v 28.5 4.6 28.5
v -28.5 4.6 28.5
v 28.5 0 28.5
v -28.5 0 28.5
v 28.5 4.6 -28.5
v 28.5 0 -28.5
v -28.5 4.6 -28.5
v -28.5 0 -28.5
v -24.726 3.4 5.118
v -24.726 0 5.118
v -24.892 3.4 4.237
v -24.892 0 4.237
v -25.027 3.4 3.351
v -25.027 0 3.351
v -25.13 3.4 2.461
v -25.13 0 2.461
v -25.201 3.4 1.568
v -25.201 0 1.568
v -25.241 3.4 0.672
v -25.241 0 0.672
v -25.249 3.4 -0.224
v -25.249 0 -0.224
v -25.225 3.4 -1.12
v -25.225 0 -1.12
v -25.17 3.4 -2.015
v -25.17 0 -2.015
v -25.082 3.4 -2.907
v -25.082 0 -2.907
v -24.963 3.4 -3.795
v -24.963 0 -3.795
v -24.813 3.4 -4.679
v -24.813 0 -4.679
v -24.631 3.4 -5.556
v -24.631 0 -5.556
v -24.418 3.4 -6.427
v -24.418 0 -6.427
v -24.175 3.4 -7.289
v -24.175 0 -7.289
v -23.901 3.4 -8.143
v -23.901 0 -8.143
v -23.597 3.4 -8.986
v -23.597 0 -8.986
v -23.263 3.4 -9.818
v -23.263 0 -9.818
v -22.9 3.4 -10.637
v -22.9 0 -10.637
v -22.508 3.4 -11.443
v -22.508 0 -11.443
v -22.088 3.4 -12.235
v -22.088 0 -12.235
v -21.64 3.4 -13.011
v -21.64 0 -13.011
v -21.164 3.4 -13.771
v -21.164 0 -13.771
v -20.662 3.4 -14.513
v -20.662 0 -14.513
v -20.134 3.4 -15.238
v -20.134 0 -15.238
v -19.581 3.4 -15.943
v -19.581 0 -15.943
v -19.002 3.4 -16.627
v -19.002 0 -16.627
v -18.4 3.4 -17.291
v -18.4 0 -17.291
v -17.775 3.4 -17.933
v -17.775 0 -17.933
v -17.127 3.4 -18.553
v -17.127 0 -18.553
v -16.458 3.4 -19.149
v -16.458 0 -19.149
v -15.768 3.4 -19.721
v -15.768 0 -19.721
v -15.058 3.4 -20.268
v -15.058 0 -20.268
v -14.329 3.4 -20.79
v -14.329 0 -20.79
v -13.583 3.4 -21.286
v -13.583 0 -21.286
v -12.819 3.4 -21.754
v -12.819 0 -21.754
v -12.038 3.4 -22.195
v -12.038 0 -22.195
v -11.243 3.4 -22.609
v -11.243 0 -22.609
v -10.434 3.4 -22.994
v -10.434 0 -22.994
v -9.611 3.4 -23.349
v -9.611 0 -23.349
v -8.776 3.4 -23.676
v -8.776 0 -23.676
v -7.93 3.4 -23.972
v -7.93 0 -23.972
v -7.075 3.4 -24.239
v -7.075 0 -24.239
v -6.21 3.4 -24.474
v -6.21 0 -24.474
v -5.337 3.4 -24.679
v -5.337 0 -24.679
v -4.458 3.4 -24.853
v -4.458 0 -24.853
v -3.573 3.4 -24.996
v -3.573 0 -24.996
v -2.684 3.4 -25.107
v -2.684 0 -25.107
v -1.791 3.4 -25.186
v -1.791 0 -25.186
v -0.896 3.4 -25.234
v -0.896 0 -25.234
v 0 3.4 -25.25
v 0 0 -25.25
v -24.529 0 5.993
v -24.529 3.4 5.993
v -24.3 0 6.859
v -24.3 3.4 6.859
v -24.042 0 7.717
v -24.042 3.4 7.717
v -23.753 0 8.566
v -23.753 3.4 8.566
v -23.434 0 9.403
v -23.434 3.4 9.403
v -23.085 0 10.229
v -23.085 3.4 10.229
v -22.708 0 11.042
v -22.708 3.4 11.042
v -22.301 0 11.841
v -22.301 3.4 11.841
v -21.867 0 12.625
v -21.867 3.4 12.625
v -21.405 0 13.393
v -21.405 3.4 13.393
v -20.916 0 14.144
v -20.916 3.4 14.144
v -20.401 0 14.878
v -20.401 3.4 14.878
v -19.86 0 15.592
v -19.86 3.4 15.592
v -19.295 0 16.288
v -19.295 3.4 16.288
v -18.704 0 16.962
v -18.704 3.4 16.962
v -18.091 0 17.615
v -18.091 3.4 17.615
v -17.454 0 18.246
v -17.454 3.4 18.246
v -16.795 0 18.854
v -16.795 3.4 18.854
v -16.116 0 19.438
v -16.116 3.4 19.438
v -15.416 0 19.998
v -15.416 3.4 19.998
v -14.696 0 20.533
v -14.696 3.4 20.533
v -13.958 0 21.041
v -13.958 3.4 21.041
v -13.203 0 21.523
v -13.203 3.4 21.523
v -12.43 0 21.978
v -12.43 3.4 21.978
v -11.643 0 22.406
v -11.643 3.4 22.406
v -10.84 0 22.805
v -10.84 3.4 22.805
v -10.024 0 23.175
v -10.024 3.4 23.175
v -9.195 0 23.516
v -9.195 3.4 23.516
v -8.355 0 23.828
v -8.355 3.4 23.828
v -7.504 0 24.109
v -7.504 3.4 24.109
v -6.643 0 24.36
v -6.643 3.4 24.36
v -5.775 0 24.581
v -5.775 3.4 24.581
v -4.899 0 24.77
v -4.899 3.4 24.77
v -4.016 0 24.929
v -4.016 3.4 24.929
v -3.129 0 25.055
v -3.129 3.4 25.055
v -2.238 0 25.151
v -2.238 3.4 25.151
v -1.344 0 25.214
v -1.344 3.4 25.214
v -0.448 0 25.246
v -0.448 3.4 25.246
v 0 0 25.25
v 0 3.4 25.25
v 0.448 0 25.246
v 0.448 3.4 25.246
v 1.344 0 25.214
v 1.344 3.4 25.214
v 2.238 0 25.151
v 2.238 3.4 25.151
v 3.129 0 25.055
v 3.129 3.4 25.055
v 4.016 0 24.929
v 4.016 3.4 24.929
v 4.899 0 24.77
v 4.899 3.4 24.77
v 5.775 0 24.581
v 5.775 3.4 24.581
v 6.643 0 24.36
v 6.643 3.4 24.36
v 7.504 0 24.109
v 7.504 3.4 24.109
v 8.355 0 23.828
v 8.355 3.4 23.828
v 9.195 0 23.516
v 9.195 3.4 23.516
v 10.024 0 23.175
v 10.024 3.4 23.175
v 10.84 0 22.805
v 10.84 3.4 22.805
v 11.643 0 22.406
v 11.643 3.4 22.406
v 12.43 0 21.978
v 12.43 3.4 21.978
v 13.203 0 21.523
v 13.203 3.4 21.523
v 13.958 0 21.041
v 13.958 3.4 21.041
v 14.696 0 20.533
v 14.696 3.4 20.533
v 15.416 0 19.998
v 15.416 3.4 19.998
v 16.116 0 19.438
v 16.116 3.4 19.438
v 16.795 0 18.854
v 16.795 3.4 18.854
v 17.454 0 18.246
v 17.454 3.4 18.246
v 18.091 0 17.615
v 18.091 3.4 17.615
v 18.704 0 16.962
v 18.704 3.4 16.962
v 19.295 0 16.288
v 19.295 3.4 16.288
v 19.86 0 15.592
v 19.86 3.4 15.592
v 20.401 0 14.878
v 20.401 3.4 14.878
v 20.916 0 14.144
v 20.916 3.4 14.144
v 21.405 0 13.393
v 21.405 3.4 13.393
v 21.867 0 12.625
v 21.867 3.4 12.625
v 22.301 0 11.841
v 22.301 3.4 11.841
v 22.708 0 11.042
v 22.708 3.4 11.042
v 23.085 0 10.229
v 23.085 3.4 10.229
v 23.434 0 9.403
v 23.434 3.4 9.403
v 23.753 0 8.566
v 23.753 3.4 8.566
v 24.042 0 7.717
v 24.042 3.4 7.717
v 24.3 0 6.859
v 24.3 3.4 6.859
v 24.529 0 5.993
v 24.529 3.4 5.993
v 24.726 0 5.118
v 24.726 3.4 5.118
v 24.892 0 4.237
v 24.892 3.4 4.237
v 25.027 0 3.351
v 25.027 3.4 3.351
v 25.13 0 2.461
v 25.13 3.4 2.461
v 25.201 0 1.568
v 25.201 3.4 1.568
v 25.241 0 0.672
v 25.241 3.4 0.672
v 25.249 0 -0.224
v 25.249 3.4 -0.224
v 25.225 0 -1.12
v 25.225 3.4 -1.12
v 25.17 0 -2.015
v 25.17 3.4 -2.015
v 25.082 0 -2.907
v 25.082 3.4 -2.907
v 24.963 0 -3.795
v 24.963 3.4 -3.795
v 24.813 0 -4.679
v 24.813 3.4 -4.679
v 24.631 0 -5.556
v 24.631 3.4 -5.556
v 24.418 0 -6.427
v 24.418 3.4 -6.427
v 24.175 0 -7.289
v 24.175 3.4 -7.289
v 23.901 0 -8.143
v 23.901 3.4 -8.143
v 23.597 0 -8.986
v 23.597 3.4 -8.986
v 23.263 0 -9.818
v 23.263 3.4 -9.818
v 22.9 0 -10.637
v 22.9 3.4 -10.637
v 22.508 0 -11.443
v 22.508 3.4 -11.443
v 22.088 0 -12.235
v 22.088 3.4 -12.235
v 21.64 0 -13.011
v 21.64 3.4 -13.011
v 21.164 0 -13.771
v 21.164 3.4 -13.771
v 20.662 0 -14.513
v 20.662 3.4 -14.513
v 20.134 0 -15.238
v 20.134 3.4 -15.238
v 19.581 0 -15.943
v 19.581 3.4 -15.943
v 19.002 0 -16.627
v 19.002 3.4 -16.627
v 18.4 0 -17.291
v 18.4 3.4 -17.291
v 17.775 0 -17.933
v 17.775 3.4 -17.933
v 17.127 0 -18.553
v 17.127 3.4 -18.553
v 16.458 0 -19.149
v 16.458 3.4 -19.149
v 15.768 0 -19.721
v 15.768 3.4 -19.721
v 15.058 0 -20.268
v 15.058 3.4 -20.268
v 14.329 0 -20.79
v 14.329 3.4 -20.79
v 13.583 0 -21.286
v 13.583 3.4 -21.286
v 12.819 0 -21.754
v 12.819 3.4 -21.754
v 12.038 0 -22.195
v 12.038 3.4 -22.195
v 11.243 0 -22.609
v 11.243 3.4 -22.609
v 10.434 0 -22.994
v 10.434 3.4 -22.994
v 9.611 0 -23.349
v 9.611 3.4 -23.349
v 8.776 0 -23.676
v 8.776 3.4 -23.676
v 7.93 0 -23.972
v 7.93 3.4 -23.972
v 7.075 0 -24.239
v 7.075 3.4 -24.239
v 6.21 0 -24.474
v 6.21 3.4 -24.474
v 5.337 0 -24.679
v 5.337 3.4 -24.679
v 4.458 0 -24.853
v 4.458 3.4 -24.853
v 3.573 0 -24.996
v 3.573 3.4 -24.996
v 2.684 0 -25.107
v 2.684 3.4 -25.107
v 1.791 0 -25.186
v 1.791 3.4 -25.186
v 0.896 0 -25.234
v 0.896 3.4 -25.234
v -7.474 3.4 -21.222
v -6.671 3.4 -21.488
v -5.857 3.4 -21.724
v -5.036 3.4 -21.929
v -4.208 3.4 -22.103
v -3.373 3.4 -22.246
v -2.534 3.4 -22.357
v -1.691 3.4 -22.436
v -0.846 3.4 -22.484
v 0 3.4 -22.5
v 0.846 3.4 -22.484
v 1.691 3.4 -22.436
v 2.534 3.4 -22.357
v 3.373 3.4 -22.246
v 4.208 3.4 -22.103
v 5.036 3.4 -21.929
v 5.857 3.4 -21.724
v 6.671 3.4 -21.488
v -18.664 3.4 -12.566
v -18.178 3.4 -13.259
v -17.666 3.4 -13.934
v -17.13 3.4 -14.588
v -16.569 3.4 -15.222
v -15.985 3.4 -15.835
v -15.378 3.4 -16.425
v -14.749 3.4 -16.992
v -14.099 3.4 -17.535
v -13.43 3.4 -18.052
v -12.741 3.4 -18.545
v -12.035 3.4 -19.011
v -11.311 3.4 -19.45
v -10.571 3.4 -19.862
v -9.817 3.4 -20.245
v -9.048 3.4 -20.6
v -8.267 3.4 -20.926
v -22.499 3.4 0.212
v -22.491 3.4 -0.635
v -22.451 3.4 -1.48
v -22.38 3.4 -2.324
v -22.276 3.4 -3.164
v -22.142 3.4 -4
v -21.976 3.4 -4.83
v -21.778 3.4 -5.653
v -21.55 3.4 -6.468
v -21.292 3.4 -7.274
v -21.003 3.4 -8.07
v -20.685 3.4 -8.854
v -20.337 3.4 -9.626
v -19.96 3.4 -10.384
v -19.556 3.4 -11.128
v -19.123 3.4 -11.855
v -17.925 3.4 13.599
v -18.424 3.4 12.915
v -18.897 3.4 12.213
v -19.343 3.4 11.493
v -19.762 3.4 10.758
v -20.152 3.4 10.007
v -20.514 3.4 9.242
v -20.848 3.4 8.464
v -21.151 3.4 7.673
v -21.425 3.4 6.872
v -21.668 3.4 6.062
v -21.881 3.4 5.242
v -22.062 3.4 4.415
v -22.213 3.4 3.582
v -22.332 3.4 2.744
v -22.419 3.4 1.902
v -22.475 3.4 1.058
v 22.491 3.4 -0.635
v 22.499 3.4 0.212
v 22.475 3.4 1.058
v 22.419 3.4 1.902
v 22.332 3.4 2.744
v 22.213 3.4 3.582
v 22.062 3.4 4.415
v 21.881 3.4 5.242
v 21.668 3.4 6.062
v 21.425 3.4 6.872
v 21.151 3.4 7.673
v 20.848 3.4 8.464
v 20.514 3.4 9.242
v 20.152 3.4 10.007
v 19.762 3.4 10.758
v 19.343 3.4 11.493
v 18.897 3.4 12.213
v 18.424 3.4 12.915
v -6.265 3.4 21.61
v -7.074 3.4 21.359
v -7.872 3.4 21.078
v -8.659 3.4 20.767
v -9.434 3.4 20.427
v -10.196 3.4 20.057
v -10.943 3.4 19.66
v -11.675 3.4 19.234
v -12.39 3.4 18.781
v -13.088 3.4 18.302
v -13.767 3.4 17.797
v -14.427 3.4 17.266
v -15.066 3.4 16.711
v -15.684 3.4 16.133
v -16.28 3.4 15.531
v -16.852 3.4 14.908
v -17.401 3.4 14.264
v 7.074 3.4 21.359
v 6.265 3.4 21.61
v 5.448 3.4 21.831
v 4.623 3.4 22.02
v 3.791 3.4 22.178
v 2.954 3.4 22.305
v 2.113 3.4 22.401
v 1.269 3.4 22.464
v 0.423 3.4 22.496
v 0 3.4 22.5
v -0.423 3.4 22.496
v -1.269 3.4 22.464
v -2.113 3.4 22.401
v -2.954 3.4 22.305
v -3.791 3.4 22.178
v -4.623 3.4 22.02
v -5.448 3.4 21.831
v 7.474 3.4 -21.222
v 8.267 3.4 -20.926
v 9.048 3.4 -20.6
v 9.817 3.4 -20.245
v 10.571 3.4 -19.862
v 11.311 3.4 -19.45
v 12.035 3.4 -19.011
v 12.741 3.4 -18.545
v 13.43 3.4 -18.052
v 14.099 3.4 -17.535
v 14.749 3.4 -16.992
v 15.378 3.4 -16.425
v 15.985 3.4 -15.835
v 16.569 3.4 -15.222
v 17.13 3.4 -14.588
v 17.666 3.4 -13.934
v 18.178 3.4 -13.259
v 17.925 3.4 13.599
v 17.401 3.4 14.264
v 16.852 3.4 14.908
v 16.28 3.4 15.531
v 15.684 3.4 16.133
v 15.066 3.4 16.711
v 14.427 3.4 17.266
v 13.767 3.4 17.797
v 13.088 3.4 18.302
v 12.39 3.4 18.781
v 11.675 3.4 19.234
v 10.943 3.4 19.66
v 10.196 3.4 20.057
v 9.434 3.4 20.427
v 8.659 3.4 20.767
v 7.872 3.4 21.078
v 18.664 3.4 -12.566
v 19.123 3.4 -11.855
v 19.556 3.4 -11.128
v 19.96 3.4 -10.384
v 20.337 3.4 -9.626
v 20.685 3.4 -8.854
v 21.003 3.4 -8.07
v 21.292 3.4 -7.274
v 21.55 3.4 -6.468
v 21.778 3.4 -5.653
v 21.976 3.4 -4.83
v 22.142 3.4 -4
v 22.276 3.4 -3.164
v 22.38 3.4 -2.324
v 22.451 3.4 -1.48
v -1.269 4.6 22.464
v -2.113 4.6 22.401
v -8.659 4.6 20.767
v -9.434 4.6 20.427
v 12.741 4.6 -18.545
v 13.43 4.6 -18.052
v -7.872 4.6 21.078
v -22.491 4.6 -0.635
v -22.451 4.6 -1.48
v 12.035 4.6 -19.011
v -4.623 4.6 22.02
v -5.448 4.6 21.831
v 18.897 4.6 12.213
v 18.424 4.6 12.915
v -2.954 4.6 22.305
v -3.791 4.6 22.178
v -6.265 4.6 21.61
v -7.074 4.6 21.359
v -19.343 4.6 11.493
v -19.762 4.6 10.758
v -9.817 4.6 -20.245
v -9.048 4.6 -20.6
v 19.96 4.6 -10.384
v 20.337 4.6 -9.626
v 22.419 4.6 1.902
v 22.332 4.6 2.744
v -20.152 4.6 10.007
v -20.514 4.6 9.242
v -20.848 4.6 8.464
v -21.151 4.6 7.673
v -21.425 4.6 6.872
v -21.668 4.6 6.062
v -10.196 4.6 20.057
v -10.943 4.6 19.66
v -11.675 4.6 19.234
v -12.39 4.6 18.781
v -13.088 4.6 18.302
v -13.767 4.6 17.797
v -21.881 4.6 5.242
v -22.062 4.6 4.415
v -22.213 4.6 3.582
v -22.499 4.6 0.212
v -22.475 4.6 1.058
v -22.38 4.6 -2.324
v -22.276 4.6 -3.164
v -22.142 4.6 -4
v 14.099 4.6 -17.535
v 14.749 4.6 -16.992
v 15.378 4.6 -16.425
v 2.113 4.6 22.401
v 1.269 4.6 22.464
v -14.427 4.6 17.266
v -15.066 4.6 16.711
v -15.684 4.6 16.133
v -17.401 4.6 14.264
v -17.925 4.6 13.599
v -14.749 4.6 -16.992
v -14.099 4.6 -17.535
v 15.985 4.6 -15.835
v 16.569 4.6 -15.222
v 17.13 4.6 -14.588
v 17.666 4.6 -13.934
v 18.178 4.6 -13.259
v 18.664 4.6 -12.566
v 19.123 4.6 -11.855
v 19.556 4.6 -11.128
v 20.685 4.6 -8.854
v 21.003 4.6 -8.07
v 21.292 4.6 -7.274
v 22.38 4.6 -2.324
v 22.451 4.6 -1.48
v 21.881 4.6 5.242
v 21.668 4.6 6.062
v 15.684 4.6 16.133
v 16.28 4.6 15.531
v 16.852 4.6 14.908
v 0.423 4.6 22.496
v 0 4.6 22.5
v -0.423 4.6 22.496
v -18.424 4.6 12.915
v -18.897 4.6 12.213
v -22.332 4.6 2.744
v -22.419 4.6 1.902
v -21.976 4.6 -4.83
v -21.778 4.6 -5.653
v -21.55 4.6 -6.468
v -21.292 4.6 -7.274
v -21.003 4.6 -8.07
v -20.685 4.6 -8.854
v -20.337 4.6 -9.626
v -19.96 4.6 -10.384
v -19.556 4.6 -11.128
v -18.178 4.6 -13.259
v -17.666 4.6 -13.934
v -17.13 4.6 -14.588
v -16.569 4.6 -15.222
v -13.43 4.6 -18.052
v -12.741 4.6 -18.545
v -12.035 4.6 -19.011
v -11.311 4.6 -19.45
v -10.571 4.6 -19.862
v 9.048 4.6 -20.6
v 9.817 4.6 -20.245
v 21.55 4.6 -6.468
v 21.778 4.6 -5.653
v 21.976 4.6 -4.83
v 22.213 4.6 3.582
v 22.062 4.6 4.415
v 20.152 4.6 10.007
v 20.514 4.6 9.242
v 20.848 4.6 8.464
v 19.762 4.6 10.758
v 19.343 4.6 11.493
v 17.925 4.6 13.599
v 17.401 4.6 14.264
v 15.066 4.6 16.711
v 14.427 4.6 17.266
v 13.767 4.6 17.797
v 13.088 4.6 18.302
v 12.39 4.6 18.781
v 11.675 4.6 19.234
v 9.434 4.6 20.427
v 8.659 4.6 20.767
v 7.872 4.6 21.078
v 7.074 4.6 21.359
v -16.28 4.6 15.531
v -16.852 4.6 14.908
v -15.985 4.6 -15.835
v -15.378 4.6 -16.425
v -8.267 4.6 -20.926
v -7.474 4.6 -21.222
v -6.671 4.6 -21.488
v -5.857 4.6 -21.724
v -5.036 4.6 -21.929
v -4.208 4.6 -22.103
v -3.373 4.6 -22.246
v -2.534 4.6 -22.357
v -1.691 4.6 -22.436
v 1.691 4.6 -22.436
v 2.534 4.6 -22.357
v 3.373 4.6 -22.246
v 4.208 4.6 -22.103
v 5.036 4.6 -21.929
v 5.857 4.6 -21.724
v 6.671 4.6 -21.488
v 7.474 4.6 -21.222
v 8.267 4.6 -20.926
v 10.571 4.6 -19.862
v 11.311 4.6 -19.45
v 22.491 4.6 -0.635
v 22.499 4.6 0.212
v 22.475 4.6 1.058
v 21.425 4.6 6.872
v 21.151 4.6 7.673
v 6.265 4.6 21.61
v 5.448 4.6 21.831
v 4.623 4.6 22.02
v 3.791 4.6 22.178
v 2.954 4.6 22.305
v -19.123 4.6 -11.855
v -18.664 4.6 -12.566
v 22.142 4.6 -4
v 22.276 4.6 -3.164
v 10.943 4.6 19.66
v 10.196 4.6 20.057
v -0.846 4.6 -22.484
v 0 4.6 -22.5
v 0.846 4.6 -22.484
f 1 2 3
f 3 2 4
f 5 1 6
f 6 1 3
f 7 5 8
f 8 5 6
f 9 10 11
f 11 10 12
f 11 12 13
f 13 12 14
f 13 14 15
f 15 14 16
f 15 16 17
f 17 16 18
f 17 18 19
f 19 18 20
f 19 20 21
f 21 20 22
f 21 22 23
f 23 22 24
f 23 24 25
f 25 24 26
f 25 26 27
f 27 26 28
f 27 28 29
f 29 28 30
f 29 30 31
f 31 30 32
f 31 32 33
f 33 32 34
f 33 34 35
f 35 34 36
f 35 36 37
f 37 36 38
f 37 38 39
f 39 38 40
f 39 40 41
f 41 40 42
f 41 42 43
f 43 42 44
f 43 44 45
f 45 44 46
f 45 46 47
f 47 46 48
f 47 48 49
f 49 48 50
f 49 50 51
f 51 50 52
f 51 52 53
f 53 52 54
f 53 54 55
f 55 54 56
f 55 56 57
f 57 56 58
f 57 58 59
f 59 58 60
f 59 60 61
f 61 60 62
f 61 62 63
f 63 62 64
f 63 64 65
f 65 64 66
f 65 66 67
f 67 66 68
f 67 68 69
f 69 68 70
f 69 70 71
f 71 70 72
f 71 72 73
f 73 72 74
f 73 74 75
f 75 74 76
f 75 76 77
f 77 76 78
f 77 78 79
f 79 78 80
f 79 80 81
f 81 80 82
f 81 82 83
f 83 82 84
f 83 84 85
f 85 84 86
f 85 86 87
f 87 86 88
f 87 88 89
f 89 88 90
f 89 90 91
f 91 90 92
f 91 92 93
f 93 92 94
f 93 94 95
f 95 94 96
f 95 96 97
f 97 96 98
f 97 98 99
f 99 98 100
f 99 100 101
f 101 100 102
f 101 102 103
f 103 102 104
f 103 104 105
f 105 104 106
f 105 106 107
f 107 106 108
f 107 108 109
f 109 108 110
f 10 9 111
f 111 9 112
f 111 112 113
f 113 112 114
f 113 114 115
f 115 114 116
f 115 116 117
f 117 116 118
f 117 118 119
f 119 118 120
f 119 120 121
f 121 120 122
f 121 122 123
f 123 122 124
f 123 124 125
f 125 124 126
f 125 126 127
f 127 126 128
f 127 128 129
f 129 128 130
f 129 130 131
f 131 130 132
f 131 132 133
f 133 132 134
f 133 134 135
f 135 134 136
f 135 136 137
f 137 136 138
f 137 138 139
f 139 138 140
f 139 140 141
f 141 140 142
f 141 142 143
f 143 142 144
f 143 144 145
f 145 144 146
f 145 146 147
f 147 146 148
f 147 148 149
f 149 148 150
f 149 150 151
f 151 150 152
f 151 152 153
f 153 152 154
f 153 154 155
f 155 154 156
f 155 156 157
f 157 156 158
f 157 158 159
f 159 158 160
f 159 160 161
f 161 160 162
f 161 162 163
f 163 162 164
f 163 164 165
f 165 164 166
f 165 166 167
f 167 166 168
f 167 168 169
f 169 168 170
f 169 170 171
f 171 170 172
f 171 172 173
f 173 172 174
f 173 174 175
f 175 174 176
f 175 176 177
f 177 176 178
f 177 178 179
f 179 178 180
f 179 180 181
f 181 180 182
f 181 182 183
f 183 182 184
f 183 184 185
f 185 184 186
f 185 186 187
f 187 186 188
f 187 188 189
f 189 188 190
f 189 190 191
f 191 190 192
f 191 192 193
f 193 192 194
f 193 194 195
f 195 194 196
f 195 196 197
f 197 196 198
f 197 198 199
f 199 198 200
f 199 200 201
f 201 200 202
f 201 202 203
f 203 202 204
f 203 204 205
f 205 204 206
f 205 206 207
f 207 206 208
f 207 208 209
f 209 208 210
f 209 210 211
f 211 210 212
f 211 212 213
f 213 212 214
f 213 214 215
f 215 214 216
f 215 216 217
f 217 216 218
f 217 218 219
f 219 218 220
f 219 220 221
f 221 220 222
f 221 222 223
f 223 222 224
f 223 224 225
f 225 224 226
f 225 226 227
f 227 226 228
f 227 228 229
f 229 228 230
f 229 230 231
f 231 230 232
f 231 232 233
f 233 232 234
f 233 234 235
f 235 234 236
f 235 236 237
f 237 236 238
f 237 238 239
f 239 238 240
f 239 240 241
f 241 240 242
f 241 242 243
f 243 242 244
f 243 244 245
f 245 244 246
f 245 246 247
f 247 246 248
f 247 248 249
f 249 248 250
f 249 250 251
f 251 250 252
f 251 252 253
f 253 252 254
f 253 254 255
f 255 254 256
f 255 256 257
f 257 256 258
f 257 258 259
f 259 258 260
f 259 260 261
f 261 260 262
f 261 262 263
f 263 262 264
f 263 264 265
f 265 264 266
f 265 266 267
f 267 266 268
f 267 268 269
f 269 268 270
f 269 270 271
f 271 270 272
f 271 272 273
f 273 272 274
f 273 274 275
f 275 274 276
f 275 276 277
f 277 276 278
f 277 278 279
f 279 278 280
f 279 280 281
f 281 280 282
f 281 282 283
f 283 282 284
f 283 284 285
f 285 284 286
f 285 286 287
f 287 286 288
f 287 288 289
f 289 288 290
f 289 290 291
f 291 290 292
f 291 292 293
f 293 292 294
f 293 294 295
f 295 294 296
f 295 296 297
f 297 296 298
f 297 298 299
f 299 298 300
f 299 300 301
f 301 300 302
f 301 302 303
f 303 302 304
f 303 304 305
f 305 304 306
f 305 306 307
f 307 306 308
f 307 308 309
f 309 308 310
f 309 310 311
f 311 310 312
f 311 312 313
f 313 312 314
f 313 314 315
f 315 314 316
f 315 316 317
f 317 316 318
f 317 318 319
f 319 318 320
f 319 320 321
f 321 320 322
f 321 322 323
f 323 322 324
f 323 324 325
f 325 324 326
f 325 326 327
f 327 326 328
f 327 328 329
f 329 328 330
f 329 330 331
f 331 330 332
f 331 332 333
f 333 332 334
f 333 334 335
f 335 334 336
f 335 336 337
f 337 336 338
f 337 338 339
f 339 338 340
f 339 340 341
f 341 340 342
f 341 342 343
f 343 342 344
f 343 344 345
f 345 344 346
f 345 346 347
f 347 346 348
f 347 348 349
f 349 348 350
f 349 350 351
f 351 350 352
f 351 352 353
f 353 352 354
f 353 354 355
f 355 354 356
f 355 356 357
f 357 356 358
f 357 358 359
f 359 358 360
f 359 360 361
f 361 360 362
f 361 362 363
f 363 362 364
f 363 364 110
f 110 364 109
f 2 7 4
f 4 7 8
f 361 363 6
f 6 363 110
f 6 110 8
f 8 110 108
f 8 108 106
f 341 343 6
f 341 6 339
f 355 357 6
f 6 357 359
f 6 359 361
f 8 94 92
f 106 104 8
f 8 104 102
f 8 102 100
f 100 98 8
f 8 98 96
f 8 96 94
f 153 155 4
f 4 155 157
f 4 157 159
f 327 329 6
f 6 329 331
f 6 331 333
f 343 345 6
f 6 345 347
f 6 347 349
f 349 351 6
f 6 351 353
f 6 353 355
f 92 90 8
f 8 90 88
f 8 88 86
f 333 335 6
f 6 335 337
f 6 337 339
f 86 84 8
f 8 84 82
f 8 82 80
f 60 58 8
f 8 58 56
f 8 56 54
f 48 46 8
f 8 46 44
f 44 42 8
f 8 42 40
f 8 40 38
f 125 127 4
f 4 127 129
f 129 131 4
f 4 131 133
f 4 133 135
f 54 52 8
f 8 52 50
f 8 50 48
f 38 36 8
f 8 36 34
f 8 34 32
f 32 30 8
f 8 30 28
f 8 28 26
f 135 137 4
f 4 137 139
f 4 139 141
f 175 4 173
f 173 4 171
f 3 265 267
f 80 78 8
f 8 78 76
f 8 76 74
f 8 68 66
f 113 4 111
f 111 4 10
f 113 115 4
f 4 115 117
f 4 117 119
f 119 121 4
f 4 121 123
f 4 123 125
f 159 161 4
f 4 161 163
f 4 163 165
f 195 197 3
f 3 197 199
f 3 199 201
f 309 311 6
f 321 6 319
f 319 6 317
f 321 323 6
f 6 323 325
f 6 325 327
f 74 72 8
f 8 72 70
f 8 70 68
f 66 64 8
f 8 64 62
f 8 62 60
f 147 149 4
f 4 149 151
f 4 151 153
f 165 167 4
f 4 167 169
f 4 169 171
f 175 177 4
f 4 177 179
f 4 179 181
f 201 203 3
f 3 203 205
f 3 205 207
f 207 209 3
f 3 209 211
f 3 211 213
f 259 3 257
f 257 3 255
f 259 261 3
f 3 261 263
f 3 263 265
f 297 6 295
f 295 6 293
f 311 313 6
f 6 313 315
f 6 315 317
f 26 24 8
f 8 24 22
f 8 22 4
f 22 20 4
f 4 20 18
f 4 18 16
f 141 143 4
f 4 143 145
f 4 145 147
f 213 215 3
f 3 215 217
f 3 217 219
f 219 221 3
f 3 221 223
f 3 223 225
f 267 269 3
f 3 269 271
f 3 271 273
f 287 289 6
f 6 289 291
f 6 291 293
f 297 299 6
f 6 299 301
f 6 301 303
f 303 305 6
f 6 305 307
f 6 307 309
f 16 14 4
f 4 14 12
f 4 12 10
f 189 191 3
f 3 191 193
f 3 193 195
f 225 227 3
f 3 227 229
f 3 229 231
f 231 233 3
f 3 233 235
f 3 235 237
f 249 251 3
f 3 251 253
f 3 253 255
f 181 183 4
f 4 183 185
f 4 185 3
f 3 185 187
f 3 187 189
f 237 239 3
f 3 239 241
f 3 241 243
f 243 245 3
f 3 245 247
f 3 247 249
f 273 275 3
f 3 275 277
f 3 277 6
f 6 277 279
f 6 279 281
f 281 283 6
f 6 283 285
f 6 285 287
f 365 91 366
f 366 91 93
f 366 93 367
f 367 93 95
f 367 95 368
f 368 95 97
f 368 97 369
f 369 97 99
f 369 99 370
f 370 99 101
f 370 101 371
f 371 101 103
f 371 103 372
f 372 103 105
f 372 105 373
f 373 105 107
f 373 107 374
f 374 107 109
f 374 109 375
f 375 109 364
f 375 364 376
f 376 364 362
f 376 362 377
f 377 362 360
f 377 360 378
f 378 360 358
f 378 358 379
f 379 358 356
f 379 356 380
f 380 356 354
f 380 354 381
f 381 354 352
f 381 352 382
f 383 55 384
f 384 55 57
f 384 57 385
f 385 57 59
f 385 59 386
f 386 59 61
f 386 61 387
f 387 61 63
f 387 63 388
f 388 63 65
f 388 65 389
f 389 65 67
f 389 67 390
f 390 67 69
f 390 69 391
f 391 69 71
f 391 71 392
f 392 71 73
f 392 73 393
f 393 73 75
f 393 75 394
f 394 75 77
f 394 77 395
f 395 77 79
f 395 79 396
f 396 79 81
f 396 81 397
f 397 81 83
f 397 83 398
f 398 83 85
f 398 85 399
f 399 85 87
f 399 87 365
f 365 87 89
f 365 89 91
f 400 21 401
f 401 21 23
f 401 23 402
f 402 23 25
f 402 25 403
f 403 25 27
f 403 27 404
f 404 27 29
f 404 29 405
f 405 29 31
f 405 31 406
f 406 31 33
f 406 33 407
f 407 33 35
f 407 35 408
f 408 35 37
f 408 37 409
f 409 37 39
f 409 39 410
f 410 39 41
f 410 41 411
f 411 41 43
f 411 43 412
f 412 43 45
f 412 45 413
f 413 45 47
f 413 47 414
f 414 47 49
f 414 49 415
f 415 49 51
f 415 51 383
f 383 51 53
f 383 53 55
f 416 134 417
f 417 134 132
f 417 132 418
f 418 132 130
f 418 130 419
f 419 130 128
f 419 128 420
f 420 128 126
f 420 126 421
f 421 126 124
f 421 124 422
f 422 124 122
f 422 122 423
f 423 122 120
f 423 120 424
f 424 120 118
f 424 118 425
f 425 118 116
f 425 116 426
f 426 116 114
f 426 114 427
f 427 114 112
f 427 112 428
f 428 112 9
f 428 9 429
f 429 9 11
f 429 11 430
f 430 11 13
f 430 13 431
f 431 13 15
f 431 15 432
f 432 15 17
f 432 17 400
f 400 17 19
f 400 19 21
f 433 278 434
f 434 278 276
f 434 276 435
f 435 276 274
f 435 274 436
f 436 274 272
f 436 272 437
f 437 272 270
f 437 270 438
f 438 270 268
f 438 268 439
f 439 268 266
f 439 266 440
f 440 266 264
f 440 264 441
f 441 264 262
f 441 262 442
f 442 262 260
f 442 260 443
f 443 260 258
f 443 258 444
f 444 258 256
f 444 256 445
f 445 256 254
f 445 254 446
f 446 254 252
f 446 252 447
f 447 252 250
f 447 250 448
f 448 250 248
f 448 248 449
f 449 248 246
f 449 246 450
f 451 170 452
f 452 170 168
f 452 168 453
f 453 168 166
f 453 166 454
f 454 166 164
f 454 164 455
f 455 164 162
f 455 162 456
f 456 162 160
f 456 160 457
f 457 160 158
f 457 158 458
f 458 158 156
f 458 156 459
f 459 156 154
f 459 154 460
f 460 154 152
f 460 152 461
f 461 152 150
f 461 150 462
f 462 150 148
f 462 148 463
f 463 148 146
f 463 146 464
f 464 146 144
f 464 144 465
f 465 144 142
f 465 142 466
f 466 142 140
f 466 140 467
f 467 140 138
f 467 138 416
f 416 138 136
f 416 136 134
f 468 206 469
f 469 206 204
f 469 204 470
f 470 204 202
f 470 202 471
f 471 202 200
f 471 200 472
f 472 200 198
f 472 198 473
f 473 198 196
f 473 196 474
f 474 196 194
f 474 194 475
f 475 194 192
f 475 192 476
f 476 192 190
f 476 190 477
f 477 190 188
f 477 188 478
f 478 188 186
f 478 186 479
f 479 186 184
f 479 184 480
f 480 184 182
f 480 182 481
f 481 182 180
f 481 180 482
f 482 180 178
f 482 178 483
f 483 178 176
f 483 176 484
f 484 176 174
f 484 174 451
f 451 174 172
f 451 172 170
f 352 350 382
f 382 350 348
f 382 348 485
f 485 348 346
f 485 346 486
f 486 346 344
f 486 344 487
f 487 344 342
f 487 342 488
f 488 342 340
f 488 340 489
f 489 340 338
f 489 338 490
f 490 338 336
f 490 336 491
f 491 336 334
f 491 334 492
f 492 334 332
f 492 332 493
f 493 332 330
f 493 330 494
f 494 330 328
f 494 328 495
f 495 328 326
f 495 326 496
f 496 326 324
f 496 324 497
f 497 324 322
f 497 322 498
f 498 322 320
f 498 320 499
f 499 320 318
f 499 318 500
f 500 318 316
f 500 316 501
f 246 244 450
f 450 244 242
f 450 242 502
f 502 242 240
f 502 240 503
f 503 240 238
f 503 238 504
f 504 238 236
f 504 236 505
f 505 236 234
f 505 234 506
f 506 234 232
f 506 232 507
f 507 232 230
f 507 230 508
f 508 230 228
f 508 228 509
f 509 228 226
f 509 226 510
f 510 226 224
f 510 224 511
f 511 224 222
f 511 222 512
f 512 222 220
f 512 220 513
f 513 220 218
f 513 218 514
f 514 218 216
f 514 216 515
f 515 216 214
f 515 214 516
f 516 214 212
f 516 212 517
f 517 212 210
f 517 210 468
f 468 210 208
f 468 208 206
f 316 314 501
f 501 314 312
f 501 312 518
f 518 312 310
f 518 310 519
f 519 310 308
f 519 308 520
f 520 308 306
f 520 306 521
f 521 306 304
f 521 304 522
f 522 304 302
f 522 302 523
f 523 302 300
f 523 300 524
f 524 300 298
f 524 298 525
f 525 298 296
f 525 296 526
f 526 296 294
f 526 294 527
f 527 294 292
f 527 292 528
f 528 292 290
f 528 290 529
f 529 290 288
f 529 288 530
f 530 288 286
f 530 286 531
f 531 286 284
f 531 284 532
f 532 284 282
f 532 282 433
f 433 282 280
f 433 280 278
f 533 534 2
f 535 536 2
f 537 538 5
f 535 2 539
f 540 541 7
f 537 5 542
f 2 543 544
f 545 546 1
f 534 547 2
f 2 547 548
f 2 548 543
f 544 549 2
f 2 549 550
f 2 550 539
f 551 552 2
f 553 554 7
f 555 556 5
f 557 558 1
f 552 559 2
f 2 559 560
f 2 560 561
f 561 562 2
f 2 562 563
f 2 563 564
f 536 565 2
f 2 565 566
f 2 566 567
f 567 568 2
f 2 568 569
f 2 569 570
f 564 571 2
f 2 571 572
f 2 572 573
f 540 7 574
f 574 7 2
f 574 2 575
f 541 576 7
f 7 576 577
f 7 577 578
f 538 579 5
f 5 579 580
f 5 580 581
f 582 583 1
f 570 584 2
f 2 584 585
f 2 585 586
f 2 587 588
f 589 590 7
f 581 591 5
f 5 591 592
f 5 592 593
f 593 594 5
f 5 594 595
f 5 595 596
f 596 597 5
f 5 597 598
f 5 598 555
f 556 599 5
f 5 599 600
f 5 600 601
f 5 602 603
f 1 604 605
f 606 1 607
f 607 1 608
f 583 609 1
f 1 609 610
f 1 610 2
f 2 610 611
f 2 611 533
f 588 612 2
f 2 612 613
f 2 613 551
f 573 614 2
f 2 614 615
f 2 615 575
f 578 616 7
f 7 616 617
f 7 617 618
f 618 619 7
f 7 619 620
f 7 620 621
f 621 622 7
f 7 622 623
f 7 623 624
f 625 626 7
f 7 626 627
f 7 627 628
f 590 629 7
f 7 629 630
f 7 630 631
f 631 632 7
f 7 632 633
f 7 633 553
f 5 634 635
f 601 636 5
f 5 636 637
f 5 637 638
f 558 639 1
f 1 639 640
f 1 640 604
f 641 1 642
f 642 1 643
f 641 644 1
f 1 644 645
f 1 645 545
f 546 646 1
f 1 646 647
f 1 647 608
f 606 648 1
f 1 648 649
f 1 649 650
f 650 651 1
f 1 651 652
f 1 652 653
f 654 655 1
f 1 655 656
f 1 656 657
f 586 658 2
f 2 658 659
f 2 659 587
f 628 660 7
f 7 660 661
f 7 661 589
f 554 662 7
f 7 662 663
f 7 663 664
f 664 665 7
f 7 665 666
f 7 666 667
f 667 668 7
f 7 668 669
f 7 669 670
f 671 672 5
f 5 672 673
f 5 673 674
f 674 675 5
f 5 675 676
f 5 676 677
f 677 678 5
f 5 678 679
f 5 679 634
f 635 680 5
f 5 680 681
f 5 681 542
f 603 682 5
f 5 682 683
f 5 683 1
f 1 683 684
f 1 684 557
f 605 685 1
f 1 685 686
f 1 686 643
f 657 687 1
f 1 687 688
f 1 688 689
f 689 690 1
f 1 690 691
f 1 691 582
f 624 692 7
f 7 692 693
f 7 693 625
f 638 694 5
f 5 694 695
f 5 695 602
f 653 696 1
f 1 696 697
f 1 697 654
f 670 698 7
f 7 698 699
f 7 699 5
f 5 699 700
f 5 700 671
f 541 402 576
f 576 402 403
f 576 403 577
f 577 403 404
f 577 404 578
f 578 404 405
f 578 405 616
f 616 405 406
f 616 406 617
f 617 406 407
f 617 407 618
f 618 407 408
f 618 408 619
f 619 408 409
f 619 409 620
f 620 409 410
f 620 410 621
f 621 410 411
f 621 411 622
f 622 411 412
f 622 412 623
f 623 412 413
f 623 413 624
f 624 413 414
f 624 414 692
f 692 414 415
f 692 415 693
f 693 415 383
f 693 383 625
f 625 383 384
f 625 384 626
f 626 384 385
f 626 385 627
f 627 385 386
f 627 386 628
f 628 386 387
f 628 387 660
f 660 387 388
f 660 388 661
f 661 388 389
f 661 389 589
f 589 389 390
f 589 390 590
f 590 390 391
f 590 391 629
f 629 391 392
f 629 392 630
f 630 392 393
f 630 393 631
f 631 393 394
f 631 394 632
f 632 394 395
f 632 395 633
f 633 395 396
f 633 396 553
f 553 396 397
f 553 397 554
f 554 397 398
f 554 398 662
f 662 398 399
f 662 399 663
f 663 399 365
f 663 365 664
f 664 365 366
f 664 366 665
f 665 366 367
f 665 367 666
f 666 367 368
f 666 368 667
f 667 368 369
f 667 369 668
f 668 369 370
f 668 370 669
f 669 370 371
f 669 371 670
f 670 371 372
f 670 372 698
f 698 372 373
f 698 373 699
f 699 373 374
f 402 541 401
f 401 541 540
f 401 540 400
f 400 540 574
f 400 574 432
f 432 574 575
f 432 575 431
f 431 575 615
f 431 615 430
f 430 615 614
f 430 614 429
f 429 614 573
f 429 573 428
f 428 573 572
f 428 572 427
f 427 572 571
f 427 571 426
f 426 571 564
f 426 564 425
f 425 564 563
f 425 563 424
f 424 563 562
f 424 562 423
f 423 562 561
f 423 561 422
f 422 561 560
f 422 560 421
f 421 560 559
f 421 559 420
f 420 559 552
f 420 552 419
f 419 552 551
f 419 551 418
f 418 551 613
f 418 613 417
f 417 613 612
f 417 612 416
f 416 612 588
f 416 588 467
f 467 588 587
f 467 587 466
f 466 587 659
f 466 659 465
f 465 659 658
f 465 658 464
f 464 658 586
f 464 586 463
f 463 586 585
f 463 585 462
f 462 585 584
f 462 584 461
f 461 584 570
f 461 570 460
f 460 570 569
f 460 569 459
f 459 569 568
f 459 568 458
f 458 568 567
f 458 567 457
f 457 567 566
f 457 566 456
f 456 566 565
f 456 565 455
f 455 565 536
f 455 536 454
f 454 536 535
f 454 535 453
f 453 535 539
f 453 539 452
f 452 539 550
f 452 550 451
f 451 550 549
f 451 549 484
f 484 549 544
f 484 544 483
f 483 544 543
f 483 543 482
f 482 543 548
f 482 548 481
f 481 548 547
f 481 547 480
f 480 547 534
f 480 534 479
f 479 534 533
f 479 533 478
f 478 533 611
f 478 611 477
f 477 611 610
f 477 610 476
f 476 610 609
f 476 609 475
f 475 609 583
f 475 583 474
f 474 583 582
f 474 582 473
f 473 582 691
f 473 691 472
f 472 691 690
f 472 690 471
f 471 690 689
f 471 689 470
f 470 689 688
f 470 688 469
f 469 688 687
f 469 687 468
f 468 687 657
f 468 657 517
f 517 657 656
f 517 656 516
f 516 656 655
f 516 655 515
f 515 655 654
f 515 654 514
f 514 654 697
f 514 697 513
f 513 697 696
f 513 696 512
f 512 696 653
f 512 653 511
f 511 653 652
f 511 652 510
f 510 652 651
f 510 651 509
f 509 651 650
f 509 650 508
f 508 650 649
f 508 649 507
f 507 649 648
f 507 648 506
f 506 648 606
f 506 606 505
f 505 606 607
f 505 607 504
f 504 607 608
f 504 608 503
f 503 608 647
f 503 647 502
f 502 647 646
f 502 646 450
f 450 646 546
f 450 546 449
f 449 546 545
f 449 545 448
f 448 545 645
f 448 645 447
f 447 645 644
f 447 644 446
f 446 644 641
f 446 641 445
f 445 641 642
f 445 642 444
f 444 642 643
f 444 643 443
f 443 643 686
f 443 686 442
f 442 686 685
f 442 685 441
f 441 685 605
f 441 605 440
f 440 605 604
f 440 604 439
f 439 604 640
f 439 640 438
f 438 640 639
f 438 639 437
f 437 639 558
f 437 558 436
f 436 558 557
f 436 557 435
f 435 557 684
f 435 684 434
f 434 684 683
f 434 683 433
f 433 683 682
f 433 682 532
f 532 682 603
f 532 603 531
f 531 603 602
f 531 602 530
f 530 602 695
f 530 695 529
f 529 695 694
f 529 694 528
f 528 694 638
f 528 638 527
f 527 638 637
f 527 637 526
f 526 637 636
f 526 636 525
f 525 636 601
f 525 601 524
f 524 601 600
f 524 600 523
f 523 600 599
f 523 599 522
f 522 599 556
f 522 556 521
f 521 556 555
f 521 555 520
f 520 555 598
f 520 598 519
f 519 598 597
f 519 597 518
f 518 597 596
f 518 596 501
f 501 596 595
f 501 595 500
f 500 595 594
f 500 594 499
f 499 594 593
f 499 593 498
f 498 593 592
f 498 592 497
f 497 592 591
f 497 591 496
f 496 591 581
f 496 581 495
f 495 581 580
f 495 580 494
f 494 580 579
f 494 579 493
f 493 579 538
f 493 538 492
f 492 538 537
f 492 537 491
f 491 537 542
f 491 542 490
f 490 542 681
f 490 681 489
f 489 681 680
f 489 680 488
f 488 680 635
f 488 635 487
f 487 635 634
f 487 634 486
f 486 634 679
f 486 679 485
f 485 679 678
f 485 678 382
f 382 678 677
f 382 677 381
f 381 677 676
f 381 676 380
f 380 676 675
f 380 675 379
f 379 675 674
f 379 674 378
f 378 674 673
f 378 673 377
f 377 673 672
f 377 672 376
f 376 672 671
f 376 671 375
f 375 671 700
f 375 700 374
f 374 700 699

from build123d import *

# Parameters (mm, degrees)
SKIZZE1_W                       = 57
SKIZZE1_H                       = 57
SKIZZE1_R                       = 25.25
AUFSATZ_LINEAR_AUSTRAGEN1_DEPTH = 3.4
AUFSATZ_LINEAR_START            = 3.4
SKIZZE1_3_W                     = 57
SKIZZE1_3_H                     = 57
SKIZZE1_3_R                     = 25.25
SKIZZE1_3_R_2                   = 22.5
AUFSATZ_LINEAR_AUSTRAGEN2_DEPTH = 1.2


with BuildPart() as part:
    # Skizze1 → Aufsatz-Linear austragen1 (new body)
    with BuildSketch(Plane(origin=(0, 0, 0), x_dir=(1, 0, 0), z_dir=(0, 1, 0))):
        Rectangle(SKIZZE1_W, SKIZZE1_H)
        with Locations(Location((0, 0, 0), (0, 0, 270))):
            Circle(SKIZZE1_R, mode=Mode.SUBTRACT)
    extrude(amount=AUFSATZ_LINEAR_AUSTRAGEN1_DEPTH)

    # Skizze1<3> → Aufsatz-Linear austragen2 (add)
    # profile 1 of 2: a face of its own
    with BuildSketch(Plane(origin=(0, 0, 0), x_dir=(1, 0, 0), z_dir=(0, 1, 0)).offset(AUFSATZ_LINEAR_START)):
        Rectangle(SKIZZE1_3_W, SKIZZE1_3_H)
        with Locations(Location((0, 0, 0), (0, 0, 270))):
            Circle(SKIZZE1_3_R, mode=Mode.SUBTRACT)
    # profile 2 of 2: a face of its own
    with BuildSketch(Plane(origin=(0, 0, 0), x_dir=(1, 0, 0), z_dir=(0, 1, 0)).offset(AUFSATZ_LINEAR_START)):
        with Locations(Location((0, 0, 0), (0, 0, 270))):
            Circle(SKIZZE1_3_R)
        with Locations(Location((0, 0, 0), (0, 0, 270))):
            Circle(SKIZZE1_3_R_2, mode=Mode.SUBTRACT)
    extrude(amount=AUFSATZ_LINEAR_AUSTRAGEN2_DEPTH)


solid = part.part
